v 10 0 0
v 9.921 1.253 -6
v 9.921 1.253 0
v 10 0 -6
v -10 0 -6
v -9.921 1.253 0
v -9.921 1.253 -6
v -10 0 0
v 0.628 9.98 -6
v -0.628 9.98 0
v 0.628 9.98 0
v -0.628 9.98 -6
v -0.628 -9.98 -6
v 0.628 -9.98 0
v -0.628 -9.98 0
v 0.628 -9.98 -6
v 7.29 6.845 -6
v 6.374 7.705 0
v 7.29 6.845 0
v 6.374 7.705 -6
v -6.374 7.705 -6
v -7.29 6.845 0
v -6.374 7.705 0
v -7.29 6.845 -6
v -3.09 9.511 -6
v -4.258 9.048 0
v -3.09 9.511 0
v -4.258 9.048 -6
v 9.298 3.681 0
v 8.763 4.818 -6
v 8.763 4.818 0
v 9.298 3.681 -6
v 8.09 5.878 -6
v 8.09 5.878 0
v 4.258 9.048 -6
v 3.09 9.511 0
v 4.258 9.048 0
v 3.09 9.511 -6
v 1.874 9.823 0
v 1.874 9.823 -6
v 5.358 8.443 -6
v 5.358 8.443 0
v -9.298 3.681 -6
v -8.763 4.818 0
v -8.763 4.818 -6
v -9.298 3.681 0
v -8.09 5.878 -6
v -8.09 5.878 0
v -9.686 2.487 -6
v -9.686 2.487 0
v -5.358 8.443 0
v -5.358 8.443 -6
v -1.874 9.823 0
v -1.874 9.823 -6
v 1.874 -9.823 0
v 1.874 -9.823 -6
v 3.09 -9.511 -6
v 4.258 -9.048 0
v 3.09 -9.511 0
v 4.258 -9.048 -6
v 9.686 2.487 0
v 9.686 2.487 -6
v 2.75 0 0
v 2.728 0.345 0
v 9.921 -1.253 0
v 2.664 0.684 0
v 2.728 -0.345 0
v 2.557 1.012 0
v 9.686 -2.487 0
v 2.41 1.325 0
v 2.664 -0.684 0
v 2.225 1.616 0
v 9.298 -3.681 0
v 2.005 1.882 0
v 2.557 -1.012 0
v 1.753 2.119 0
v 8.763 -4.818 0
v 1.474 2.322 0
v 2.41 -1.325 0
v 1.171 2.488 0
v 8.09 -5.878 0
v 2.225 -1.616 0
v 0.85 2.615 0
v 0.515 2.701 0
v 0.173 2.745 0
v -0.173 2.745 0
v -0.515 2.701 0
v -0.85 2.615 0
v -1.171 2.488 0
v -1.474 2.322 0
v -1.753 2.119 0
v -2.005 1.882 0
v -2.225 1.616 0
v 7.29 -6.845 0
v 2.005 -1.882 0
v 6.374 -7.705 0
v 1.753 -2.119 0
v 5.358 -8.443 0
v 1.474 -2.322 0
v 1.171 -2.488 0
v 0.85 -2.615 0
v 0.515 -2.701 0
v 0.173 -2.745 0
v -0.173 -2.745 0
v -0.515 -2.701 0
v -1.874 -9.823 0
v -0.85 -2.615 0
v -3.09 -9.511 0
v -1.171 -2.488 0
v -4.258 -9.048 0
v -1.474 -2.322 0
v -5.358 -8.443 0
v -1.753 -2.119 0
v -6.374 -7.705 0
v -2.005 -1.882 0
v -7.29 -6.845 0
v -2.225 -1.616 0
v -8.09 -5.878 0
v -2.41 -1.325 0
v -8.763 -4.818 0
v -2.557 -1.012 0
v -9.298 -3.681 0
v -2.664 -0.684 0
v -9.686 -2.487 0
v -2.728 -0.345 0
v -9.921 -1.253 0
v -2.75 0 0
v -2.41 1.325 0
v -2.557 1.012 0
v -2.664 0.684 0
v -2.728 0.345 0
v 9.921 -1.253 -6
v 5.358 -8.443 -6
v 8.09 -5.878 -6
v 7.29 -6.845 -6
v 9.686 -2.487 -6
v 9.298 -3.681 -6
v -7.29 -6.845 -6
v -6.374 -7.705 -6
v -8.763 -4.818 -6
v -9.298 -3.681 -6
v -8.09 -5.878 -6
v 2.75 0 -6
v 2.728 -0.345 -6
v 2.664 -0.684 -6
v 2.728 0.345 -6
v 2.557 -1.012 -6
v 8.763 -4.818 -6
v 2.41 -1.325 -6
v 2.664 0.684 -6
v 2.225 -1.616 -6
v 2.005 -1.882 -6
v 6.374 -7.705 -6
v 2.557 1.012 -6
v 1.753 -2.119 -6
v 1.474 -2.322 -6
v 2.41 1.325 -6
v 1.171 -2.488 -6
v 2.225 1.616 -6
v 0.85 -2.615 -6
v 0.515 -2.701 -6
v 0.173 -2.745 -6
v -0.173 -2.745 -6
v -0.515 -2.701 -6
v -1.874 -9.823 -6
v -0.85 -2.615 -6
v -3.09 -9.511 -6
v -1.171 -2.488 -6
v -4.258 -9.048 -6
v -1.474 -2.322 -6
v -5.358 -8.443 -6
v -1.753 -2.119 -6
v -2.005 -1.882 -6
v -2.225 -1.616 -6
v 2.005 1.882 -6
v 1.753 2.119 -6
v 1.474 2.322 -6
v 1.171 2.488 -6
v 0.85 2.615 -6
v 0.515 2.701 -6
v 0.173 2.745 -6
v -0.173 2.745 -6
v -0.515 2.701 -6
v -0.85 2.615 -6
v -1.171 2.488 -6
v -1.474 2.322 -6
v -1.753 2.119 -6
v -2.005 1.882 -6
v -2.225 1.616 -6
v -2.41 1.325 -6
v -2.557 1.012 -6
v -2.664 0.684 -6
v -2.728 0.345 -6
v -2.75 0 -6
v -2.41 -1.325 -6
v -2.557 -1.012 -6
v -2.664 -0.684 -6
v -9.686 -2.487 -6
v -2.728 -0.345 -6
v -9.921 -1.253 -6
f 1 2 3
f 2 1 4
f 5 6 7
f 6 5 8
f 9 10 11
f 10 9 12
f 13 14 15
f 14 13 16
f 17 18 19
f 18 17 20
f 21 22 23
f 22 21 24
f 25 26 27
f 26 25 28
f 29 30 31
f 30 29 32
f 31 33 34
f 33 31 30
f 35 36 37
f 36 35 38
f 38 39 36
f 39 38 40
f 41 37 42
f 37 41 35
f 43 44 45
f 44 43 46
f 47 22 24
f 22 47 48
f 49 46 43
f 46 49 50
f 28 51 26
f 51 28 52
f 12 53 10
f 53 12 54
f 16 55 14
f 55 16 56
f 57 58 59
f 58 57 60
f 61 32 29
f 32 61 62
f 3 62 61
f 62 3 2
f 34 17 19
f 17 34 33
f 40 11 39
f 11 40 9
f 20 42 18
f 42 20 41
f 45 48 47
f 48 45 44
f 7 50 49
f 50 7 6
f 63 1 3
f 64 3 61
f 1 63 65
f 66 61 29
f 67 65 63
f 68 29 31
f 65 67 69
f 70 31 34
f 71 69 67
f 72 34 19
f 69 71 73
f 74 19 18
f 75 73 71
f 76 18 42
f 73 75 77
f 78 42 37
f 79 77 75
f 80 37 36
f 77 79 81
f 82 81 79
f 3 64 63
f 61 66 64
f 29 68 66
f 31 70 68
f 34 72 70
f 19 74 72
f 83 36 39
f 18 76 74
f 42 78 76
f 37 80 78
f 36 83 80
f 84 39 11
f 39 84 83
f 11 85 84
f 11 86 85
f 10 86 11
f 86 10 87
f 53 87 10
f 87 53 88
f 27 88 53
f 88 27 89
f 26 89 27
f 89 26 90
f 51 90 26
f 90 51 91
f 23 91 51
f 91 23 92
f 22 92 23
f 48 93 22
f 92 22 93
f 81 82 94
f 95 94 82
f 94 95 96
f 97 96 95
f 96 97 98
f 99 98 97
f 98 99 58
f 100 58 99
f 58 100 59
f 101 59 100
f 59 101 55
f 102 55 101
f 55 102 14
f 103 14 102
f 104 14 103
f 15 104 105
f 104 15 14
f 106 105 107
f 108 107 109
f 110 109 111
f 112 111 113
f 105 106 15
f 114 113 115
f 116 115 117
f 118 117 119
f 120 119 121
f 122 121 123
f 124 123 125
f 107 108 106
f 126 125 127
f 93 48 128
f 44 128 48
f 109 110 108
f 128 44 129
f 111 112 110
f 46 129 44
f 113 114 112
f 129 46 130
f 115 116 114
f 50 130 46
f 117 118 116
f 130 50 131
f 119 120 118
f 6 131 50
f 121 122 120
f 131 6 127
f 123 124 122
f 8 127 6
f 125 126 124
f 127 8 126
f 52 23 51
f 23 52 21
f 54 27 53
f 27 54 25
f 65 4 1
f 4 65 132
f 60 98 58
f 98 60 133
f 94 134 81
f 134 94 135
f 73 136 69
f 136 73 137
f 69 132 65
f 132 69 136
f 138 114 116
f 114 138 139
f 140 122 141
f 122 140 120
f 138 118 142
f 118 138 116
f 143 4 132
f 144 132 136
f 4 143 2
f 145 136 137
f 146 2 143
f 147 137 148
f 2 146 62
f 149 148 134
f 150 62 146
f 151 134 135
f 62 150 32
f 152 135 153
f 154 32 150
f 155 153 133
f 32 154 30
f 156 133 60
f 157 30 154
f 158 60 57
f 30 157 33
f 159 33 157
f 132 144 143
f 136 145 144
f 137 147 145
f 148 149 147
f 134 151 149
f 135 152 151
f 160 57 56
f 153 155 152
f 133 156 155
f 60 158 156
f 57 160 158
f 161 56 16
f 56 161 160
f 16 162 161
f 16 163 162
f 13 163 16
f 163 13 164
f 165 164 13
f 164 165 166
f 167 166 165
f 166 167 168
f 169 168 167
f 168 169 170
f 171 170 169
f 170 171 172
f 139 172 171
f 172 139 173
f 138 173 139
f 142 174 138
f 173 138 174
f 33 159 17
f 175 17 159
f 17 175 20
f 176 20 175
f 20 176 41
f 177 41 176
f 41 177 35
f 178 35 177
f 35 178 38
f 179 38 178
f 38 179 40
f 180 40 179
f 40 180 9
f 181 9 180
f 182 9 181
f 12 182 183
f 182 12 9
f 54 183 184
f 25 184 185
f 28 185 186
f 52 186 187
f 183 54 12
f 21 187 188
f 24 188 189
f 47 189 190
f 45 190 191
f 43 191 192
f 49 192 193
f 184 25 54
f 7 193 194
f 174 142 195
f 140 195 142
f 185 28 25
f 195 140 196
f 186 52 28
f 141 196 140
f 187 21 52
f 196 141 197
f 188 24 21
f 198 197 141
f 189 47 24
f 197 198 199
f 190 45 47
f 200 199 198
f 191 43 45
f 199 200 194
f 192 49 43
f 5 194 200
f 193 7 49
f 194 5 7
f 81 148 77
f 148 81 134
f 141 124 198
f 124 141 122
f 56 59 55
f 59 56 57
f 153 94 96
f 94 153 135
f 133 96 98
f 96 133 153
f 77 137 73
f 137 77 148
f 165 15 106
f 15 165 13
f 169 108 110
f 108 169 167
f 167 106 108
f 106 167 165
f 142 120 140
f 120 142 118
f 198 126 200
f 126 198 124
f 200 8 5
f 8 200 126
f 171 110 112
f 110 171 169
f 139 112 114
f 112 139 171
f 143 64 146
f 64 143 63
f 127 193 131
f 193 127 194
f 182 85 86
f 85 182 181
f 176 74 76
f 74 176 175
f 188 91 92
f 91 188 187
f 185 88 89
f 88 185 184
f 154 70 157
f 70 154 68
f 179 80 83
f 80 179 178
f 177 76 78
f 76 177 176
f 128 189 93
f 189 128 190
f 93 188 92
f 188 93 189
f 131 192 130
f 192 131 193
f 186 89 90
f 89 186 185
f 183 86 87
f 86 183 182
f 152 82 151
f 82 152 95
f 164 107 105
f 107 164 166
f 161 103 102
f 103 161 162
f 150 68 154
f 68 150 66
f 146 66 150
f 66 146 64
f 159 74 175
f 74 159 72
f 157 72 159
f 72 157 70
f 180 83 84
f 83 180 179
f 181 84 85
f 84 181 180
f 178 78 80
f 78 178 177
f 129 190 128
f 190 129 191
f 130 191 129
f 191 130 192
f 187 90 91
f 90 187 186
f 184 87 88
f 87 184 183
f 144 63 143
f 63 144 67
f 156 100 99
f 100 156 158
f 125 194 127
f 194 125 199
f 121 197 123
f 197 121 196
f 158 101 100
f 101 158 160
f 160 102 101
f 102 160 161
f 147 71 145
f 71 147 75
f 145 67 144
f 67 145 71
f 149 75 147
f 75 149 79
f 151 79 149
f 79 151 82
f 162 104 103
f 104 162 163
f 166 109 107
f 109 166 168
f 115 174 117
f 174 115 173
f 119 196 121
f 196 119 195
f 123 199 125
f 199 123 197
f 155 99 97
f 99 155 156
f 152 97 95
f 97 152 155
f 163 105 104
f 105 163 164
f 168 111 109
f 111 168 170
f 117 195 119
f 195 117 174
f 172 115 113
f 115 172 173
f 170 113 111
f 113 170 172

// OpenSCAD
$fn = 50;


difference() {
	union() {
		translate(v = [0, 0, -6.0000000000]) {
			cylinder(h = 6, r = 10.0000000000);
		}
		cylinder(h = 0, r = 13.0000000000);
	}
	union() {
		#translate(v = [0, 0, -6]) {
			cylinder(h = 6, r = 2.7500000000);
		}
	}
}
